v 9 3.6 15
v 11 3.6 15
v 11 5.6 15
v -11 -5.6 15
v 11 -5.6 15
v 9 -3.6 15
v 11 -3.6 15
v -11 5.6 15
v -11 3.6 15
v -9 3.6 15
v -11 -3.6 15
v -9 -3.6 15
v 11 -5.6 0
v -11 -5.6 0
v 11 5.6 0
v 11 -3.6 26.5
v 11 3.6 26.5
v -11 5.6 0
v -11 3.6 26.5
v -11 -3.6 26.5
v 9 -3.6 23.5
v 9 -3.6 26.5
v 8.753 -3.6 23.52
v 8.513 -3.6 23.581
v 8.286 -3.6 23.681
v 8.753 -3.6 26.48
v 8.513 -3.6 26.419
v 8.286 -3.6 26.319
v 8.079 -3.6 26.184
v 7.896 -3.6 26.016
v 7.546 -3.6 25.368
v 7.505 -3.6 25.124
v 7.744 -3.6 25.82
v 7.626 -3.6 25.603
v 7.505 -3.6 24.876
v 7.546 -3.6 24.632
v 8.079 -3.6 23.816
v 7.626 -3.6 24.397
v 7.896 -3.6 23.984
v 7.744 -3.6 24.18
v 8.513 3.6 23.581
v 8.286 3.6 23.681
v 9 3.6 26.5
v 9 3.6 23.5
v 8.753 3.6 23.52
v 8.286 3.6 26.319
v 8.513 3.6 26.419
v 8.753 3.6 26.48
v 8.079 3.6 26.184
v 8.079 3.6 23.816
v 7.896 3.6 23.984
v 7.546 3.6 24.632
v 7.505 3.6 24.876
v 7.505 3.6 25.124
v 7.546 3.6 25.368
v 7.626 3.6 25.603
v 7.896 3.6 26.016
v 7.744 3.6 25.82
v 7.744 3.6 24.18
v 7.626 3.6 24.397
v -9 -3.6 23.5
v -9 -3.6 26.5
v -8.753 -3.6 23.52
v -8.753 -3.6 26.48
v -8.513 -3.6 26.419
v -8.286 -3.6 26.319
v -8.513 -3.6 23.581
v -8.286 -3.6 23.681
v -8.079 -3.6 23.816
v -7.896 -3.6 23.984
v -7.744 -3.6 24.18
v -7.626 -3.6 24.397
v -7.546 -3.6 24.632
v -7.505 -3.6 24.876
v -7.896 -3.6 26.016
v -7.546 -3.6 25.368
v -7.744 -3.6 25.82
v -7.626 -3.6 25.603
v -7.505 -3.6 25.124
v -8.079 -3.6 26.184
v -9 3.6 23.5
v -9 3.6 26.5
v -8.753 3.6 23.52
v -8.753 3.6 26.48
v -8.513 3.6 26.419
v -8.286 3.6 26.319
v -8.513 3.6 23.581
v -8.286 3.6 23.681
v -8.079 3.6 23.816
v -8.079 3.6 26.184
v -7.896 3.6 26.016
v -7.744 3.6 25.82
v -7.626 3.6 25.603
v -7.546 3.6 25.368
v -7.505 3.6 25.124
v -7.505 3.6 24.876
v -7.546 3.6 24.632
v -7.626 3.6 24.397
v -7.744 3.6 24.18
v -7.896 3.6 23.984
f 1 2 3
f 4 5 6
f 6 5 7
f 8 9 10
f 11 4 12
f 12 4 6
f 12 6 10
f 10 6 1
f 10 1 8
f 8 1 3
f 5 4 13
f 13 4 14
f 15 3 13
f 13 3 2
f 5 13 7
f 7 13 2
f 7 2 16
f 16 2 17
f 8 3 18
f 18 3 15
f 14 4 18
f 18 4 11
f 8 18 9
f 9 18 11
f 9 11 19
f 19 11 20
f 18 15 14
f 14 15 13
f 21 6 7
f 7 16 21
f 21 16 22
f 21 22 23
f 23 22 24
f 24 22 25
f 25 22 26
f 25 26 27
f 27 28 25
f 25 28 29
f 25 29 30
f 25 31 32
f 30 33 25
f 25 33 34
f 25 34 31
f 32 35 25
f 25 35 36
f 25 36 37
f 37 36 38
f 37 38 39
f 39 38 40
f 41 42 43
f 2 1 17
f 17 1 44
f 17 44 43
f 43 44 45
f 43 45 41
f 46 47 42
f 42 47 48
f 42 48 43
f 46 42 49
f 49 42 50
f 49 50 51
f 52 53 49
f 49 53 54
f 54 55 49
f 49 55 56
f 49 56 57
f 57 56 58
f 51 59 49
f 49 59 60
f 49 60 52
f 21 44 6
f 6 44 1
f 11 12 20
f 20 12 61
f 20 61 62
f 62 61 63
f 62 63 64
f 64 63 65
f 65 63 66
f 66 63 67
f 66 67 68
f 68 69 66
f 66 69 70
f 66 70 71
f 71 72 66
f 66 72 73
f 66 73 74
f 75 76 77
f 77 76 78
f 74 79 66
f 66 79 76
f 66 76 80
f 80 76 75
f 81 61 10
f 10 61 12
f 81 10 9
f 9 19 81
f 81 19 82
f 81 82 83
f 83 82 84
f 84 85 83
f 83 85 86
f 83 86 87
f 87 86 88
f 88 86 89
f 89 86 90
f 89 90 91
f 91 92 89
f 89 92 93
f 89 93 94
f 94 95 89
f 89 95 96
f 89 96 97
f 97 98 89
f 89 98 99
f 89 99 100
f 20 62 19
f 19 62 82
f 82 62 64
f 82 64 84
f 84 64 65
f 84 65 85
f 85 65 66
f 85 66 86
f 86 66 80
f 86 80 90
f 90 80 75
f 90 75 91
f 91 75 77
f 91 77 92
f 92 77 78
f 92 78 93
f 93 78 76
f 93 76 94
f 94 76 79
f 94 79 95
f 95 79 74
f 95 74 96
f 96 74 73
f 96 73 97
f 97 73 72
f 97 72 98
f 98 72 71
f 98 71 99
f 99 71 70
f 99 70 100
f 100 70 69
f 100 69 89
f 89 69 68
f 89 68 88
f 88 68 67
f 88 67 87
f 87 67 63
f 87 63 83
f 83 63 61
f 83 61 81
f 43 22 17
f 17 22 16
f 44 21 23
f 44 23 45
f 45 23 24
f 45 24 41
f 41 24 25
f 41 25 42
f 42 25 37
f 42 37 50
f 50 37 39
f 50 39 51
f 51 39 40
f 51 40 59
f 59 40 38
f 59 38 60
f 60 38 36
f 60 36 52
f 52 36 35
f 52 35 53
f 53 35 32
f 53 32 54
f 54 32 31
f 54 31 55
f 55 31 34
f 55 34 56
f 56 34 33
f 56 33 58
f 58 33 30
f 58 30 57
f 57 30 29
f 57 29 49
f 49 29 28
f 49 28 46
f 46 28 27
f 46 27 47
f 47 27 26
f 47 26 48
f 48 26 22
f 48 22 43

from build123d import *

# Parameters (mm, degrees)
SKETCH1_W           = 2
SKETCH1_H           = 7.2
SKETCH1_W_2         = 18
BOSS_EXTRUDE3_DEPTH = 15
BOSS_EXTRUDE4_START = 15
SKETCH1_4_W         = 2
SKETCH1_4_H         = 7.2
BOSS_EXTRUDE4_DEPTH = 8.5
BOSS_EXTRUDE5_START = -3.6
SKETCH3_W           = 2
SKETCH3_H           = 3
BOSS_EXTRUDE5_DEPTH = 7.2


with BuildPart() as part:
    # Sketch1 → Boss-Extrude3 (new body)
    with BuildSketch(Plane.XY):
        Polygon((9, 3.6), (11, 3.6), (11, 5.6), (-11, 5.6), (-11, 3.6), (-9, 3.6), align=None)
        with Locations((-10, 0)):
            Rectangle(SKETCH1_W, SKETCH1_H)
        Rectangle(SKETCH1_W_2, SKETCH1_H)
        Polygon((11, -3.6), (11, -5.6), (-11, -5.6), (-11, -3.6), (-9, -3.6), (9, -3.6), align=None)
        with Locations((10, 0)):
            Rectangle(SKETCH1_W, SKETCH1_H)
    extrude(amount=BOSS_EXTRUDE3_DEPTH)

    # Sketch1<4> → Boss-Extrude4 (add)
    with BuildSketch(Plane.XY.offset(BOSS_EXTRUDE4_START)):
        with Locations((-10, 0)):
            Rectangle(SKETCH1_4_W, SKETCH1_4_H)
        with Locations((10, 0)):
            Rectangle(SKETCH1_4_W, SKETCH1_4_H)
    extrude(amount=BOSS_EXTRUDE4_DEPTH)

    # Sketch3 → Boss-Extrude5 (add)
    with BuildSketch(Plane(origin=(0, 0, 0), x_dir=(1, 0, 0), z_dir=(0, 1, 0)).offset(BOSS_EXTRUDE5_START)):
        with Locations((-10, -25)):
            Rectangle(SKETCH3_W, SKETCH3_H)
        with BuildLine():
            Line((-9, -23.5), (-9, -26.5))
            ThreePointArc((-9, -26.5), (-7.5, -25), (-9, -23.5))
        make_face()
    boss_extrude5 = extrude(amount=BOSS_EXTRUDE5_DEPTH)

    # Mirror1: Boss-Extrude5 across plane
    add(boss_extrude5.mirror(Plane(origin=(0, 0, 0), x_dir=(0, 0, 1), z_dir=(1, 0, 0))))


solid = part.part
